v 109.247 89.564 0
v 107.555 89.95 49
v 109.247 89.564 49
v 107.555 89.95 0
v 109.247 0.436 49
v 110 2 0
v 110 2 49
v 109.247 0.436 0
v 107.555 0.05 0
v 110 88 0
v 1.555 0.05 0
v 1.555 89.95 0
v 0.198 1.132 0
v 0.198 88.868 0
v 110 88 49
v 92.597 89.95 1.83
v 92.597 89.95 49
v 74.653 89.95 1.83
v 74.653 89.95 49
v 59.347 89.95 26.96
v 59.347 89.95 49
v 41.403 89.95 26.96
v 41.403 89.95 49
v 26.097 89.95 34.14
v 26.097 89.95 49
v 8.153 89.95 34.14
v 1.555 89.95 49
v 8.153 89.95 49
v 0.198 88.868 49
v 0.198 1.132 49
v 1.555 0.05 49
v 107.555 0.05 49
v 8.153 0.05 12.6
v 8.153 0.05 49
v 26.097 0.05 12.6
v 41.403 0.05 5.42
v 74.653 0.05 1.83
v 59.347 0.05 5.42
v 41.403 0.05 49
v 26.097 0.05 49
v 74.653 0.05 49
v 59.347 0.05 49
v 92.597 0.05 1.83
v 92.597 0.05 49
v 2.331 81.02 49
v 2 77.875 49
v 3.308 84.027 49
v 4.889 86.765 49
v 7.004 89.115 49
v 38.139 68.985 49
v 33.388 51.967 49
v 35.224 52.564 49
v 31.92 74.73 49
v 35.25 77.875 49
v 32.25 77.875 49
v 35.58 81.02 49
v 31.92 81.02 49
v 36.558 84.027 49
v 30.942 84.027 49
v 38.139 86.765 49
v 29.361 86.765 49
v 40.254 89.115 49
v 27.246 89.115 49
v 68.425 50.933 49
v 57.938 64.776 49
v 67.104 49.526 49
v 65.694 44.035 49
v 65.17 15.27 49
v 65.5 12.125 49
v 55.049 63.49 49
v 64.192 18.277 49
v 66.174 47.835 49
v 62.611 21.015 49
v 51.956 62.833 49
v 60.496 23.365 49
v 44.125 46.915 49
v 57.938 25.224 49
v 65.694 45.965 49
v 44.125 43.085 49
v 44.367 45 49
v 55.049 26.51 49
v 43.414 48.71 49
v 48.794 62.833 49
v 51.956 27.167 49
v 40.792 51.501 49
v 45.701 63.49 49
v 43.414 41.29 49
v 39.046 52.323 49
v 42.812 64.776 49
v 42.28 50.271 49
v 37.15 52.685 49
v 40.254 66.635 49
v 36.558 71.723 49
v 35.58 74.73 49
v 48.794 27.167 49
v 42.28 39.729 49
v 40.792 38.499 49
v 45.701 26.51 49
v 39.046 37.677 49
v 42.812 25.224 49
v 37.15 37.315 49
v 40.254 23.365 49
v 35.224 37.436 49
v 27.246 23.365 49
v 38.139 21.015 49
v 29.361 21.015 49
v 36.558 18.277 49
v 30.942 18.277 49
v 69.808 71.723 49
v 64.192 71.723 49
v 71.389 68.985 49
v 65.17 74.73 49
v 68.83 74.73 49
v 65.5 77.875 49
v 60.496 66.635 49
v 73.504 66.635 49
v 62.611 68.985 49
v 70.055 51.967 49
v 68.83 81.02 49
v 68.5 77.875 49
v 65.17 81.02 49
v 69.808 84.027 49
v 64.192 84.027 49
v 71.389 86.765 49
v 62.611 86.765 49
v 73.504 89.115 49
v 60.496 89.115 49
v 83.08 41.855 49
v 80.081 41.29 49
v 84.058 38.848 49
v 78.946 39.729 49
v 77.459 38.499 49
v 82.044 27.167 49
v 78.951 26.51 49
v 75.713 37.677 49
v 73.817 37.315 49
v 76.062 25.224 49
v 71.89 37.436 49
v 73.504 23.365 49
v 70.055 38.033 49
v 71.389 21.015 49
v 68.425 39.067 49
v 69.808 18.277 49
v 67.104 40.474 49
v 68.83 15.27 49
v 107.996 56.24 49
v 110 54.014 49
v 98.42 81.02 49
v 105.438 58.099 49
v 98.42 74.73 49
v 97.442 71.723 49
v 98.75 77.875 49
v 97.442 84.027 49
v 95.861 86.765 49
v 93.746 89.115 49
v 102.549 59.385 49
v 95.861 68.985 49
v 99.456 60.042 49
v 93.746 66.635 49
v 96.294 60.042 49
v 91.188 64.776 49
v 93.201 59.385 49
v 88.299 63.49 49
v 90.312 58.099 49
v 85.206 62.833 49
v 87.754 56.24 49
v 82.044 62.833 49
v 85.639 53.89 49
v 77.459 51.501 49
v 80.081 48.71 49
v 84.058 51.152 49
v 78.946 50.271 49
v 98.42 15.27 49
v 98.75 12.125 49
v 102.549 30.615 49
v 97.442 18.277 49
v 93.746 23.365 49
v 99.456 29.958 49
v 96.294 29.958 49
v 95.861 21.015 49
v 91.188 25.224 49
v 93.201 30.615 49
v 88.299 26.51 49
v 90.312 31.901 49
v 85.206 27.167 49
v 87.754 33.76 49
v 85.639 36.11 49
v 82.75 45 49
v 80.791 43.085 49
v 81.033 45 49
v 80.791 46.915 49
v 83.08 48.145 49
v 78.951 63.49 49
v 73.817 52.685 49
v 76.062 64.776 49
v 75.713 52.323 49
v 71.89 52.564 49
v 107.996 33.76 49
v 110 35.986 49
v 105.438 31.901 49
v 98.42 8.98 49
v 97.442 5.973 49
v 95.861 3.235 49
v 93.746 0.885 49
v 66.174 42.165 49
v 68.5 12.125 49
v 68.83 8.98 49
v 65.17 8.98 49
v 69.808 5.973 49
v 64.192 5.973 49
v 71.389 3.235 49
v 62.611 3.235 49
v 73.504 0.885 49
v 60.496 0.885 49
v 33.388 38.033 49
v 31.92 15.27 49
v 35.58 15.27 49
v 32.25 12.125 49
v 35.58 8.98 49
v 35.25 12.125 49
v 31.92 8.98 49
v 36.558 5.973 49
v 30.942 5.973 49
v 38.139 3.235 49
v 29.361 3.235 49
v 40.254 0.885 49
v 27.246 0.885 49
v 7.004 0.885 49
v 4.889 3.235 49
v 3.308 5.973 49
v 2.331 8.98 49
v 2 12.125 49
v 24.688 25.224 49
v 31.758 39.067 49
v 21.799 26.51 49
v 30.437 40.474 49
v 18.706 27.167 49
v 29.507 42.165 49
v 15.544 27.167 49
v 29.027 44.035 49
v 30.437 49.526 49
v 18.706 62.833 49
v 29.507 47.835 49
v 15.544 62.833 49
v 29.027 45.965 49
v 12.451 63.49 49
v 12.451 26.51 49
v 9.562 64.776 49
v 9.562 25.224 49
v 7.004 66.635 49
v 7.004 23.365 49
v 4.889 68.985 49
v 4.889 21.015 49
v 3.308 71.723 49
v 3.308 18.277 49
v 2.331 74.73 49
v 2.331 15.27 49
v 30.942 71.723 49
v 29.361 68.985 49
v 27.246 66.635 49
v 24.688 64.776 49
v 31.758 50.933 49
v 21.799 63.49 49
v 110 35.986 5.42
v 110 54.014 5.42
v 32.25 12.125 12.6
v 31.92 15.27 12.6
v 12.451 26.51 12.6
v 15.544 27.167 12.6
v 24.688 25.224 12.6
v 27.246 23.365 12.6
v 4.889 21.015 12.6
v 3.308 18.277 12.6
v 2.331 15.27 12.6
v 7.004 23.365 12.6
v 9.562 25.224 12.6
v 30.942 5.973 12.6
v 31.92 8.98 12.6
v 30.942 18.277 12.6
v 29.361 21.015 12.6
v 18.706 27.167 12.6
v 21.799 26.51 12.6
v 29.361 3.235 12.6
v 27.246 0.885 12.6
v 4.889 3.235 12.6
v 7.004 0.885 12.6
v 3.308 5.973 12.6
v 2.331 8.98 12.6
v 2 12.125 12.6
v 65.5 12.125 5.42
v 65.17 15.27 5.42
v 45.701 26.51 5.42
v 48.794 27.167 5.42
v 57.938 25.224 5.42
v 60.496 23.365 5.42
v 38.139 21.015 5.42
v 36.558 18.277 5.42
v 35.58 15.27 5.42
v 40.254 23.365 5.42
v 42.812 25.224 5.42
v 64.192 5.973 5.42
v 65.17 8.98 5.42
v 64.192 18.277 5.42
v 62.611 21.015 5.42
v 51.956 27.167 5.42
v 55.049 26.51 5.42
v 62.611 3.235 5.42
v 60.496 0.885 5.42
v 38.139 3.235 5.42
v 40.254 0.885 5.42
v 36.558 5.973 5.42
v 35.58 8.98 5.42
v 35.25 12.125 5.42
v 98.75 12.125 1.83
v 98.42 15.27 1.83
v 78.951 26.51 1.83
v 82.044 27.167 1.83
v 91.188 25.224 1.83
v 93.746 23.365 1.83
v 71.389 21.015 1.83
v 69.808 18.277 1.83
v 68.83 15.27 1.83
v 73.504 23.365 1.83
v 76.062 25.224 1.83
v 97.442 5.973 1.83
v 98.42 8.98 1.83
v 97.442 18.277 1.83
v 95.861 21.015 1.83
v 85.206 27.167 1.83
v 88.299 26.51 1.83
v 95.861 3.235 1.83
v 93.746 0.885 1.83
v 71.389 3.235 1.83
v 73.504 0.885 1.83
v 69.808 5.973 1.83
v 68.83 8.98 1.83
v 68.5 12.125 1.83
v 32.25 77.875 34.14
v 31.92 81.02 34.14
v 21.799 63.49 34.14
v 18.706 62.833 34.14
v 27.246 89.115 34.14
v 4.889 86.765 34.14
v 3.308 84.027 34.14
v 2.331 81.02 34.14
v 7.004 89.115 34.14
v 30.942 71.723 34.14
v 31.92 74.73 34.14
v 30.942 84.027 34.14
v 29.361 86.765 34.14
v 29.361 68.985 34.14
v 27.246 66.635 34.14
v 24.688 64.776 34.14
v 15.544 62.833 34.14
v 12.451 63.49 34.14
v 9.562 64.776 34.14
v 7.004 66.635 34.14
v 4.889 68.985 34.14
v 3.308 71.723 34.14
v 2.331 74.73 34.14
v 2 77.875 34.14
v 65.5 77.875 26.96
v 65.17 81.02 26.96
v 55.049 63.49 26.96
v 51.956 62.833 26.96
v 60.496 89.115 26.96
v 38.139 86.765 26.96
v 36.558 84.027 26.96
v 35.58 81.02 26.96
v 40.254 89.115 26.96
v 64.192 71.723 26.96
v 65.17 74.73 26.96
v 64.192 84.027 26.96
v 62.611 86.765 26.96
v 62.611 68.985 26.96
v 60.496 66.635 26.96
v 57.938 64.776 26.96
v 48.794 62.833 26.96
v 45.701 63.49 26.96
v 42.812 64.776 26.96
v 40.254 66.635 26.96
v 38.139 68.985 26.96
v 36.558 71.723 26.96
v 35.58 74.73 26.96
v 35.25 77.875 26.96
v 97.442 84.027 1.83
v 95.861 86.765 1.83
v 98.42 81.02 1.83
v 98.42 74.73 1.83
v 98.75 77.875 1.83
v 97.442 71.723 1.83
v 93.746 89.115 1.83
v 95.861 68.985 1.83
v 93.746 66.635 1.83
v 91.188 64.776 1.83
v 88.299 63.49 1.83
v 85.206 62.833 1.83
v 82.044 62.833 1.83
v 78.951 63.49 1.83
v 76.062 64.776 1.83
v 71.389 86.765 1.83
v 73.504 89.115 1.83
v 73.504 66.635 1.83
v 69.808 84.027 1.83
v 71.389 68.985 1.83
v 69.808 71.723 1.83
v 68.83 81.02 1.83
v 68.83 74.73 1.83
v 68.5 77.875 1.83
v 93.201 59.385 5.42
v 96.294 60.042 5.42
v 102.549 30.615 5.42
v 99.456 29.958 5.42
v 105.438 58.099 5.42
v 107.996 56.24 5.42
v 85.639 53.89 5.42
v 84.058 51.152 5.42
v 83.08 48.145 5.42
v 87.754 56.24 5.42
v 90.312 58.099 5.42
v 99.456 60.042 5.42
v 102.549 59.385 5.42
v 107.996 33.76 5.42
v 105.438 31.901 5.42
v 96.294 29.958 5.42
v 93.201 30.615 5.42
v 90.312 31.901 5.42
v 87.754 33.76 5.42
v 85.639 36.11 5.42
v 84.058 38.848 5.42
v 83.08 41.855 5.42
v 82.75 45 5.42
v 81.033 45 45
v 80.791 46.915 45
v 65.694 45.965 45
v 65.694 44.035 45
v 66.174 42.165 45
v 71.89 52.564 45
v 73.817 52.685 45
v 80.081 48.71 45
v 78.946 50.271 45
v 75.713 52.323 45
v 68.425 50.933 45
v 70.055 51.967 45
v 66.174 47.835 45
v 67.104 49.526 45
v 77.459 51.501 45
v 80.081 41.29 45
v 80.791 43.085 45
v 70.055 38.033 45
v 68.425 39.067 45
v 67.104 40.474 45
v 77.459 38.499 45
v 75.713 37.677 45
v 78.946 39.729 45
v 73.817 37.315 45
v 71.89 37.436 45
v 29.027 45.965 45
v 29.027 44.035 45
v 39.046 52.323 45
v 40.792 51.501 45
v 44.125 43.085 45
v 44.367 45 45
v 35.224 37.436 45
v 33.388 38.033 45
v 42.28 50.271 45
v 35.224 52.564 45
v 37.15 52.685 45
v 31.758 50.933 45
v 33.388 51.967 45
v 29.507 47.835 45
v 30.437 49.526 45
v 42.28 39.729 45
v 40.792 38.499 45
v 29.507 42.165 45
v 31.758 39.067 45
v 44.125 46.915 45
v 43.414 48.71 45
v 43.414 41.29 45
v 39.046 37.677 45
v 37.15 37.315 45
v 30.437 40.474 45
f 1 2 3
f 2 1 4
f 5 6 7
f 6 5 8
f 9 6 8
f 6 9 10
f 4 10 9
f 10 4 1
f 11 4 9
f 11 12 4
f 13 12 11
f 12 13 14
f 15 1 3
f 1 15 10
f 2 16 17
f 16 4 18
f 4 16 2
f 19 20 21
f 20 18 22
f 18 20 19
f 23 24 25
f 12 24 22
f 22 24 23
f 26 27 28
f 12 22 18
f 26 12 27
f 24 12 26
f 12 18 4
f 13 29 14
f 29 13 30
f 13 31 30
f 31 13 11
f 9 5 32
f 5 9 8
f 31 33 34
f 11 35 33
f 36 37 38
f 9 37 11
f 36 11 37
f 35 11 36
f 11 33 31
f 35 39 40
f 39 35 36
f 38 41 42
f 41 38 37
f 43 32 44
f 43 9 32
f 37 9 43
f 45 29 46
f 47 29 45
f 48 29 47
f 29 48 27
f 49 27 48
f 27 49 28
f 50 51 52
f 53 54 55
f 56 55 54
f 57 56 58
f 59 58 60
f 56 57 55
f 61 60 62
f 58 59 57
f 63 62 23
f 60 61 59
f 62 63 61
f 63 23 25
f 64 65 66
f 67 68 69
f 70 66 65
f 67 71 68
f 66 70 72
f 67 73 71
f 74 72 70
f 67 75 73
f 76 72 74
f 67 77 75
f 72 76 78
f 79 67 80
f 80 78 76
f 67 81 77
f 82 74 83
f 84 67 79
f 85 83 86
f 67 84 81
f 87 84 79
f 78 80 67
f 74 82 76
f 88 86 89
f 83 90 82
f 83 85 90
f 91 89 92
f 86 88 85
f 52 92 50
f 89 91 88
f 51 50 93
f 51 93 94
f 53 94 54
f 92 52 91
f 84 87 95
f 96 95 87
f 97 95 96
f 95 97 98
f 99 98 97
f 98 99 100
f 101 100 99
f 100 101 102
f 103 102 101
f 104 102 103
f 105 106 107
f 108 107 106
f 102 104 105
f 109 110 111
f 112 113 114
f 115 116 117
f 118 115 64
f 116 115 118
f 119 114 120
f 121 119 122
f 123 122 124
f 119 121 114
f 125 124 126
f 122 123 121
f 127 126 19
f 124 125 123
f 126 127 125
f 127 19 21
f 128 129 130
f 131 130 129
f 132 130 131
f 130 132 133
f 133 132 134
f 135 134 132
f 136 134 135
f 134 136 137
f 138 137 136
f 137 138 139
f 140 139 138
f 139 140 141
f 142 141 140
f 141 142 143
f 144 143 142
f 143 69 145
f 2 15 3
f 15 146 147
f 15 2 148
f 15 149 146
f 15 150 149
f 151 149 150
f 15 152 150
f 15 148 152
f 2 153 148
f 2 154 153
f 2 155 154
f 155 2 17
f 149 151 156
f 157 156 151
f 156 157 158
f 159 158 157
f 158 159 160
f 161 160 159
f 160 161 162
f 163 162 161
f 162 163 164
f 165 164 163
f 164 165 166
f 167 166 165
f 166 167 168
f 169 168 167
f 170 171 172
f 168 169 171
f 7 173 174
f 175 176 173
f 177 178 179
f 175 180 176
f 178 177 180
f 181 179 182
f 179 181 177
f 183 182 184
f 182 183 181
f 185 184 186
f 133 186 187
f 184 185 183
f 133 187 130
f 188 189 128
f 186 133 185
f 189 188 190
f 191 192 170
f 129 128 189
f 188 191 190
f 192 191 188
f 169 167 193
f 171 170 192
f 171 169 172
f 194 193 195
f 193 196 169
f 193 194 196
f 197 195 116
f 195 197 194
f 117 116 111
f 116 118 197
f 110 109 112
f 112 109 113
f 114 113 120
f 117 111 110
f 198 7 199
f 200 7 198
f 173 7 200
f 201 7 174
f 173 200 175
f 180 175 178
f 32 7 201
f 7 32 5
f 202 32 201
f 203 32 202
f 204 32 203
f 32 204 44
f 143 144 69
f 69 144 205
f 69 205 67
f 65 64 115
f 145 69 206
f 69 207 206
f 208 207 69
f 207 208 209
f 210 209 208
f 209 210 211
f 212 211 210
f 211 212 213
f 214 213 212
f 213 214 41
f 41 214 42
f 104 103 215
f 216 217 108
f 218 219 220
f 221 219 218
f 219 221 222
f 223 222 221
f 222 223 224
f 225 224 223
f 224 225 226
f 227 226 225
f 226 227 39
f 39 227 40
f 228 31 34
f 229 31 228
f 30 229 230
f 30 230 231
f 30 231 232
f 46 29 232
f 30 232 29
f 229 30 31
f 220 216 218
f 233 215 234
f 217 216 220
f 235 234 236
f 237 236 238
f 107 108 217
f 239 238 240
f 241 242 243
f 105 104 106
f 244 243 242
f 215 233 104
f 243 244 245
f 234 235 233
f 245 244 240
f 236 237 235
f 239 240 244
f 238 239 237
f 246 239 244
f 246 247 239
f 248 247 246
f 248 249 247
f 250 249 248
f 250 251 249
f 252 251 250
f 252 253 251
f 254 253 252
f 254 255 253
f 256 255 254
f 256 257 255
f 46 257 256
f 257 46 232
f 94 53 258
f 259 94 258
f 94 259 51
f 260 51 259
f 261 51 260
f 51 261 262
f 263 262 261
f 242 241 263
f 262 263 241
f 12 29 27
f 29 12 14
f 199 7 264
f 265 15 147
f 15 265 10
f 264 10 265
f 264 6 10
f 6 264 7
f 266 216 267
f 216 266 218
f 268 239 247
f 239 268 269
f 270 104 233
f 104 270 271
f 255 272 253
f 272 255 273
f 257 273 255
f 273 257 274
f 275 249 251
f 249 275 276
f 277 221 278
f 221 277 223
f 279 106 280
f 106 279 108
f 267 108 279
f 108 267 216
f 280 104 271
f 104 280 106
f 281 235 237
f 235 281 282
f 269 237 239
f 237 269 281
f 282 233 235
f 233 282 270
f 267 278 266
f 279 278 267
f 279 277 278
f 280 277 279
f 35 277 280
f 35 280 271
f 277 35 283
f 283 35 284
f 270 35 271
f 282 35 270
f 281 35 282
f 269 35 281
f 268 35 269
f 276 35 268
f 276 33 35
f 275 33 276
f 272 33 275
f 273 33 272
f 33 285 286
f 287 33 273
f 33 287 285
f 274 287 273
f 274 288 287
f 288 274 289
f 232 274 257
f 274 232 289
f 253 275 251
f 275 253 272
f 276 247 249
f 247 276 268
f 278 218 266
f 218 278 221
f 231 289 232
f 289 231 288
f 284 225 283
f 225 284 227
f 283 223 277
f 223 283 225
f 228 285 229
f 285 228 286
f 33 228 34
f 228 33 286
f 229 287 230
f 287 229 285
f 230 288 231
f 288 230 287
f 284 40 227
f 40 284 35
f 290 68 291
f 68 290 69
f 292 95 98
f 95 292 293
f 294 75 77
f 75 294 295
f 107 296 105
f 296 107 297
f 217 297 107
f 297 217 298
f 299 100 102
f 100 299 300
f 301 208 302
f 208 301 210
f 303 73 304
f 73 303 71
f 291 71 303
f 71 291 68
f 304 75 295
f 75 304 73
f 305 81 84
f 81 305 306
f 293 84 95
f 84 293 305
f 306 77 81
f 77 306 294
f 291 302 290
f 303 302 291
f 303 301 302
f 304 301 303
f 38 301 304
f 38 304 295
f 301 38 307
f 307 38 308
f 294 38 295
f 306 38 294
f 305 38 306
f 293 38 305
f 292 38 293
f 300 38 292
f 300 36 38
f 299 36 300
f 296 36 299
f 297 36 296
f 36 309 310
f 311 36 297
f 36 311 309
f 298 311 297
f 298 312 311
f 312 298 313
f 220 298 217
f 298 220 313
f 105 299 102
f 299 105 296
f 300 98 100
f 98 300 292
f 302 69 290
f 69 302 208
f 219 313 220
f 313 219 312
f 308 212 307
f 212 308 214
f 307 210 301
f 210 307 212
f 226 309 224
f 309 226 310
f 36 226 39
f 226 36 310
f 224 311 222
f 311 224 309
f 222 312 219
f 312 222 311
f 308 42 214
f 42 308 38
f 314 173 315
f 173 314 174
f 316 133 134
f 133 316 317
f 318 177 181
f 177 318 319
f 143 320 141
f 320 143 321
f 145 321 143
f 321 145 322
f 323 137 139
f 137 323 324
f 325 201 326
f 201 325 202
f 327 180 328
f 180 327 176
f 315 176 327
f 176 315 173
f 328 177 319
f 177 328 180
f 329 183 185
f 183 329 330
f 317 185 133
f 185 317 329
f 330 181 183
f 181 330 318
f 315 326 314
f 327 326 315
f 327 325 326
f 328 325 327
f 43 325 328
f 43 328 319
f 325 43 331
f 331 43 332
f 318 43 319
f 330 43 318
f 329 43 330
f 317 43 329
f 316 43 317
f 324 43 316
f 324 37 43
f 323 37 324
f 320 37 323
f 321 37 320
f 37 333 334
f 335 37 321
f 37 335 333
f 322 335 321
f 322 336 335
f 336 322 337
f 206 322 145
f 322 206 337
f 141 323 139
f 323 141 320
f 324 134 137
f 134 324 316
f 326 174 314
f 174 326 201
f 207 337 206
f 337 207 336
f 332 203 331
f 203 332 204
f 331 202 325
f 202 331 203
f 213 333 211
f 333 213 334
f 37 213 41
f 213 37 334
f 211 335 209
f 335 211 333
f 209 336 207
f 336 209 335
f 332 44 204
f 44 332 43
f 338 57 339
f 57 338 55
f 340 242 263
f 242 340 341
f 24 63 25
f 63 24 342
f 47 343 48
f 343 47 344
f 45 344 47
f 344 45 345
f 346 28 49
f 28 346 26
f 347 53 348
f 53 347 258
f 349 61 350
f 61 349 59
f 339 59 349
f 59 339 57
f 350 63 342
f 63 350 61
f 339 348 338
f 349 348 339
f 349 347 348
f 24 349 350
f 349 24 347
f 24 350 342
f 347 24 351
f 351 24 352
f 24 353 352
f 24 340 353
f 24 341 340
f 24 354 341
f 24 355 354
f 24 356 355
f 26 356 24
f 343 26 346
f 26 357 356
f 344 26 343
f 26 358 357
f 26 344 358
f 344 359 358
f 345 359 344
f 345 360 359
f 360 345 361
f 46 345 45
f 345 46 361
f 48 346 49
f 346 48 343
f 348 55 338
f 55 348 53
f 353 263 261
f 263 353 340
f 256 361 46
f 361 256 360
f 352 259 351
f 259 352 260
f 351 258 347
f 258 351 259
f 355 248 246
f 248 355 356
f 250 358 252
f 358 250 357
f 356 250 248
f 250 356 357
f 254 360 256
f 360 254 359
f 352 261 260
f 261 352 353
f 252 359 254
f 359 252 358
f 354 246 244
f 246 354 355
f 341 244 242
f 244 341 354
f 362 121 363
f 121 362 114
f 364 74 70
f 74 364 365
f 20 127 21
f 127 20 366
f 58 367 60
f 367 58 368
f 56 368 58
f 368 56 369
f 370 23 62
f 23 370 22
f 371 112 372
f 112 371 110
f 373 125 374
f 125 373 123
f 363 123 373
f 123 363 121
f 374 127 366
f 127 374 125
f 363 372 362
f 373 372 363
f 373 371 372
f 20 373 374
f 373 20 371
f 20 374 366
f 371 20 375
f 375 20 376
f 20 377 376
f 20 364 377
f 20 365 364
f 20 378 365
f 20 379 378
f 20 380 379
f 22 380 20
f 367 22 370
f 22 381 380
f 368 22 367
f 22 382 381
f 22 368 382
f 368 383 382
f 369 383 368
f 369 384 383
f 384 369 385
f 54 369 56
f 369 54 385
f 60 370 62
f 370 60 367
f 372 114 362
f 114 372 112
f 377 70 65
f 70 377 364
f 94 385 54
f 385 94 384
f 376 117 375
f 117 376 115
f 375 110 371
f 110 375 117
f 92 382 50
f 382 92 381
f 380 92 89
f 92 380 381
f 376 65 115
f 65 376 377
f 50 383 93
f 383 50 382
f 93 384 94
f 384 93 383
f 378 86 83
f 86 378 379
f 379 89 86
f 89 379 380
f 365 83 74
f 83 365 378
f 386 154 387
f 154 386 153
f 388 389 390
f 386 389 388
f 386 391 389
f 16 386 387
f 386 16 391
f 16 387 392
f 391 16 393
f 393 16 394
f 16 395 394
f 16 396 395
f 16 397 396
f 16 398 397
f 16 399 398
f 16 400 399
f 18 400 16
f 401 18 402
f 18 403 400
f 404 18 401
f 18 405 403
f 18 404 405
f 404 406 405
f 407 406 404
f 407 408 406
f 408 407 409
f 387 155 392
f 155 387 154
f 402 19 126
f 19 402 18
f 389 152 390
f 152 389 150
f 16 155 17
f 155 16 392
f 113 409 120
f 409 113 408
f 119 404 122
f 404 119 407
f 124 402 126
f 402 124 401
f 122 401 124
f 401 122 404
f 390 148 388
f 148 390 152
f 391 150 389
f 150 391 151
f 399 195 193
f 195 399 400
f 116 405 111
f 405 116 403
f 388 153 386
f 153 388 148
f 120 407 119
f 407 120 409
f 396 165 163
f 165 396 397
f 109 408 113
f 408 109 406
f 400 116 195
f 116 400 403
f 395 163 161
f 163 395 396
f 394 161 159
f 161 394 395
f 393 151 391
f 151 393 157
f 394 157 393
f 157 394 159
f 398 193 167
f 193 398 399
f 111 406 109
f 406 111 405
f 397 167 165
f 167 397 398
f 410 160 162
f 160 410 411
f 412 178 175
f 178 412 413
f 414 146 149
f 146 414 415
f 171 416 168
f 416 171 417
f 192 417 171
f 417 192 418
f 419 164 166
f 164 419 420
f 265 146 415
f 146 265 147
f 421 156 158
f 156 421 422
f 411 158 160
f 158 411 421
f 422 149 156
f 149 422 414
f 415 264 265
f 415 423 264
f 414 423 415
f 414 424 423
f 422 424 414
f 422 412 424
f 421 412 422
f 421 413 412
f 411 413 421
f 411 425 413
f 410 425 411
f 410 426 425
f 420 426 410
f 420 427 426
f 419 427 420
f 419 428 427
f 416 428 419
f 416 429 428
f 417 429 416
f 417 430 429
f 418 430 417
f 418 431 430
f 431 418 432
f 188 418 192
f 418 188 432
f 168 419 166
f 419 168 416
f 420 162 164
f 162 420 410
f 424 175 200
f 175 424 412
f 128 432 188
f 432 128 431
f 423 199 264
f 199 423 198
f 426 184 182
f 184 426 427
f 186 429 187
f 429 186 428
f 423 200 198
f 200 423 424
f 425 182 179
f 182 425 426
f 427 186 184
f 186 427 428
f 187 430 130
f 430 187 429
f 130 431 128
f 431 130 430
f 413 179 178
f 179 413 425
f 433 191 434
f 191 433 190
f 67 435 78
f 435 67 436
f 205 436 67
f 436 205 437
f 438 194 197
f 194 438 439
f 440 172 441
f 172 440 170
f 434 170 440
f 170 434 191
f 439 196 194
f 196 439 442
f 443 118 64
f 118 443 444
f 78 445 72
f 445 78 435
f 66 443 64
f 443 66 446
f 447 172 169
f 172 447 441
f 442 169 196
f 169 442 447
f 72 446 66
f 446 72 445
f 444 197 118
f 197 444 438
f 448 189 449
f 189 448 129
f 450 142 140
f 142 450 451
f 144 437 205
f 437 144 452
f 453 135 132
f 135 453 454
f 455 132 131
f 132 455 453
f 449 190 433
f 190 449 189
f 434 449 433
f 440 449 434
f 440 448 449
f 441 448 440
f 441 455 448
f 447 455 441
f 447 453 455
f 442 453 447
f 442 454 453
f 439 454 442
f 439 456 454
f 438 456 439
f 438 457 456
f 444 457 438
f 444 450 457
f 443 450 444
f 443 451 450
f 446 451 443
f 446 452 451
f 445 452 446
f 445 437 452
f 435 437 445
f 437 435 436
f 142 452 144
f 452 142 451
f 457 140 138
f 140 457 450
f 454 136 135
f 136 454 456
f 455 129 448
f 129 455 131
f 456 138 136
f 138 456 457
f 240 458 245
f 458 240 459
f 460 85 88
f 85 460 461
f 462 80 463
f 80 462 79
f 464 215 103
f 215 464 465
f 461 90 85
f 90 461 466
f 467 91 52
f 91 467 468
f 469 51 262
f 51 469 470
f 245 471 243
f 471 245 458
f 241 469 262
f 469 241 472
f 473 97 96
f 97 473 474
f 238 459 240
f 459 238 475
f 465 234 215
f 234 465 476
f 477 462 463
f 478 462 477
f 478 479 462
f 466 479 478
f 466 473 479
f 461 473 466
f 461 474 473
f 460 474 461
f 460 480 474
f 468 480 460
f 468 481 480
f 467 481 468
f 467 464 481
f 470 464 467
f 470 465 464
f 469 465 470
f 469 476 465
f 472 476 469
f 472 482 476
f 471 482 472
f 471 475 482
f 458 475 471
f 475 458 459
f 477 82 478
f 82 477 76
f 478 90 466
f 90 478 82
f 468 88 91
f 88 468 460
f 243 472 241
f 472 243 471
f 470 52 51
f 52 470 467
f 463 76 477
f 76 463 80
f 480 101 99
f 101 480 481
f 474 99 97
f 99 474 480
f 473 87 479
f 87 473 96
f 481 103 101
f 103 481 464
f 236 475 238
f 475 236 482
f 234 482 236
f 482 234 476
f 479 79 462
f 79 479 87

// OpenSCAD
height = 49;

magnetBaseInnerDiameter = 15.4;
magnetHeight = 4.0;

// 29.75 x 3.59
// 10 1's
// 25 2's
// 25 10's
// 6 50's
// 4 100's

// 10, 12, 13, 12, 13, 6, 4


smallCircleDiameter = 29.75 + .5;
smallCircleOffset = 3;
smallCircleHeight4 = 14.36 + .5;
smallCircleHeight6 = 21.54 + .5;
smallCircleHeight10 = 35.90 + .5;
smallCircleHeight12 = 43.08 + .5;
smallCircleHeight13 = 46.67 + .5;

spaceBetweenCircles = 3;
wallThickness = 3;

width = 90;
length = 110;

difference(){
    minkowski()
    {
      translate([2,2,0])
        cube([length-4, width-4, height - 1]);
      cylinder(r=2,h=1);
    }
    
   translate([
        wallThickness * 1 + (smallCircleDiameter * 1/2) - 1,
        smallCircleDiameter/2 - smallCircleOffset,
        height - smallCircleHeight10])
        cylinder(smallCircleHeight10, d=smallCircleDiameter);
    translate([
        wallThickness * 2 + smallCircleDiameter * 3/2 - 1,
        smallCircleDiameter/2 - smallCircleOffset,
        height - smallCircleHeight12])
        cylinder(smallCircleHeight12, d=smallCircleDiameter);
    translate([
        wallThickness * 3 + smallCircleDiameter * 5/2 - 1,
        smallCircleDiameter/2 - smallCircleOffset,
        height - smallCircleHeight13])
        cylinder(smallCircleHeight13, d=smallCircleDiameter);


   translate([
        wallThickness * 1 + (smallCircleDiameter * 1/2) - 1,
        width - (smallCircleDiameter/2 - smallCircleOffset),
        height - smallCircleHeight4])
        cylinder(smallCircleHeight4, d=smallCircleDiameter);
    translate([
        wallThickness * 2 + smallCircleDiameter * 3/2 - 1,
        width - (smallCircleDiameter/2 - smallCircleOffset),
        height - smallCircleHeight6])
        cylinder(smallCircleHeight6, d=smallCircleDiameter);
    translate([
        wallThickness * 3 + smallCircleDiameter * 5/2 - 1,
        width - (smallCircleDiameter/2 - smallCircleOffset),
        height - smallCircleHeight13])
        cylinder(smallCircleHeight13, d=smallCircleDiameter);

    

    //translate([smallCircleDiameter/2 - smallCircleOffset, width/2, height - smallCircleHeight12])
    //    cylinder(smallCircleHeight12, d=smallCircleDiameter);

    translate([length - (smallCircleDiameter/2 - smallCircleOffset), width/2, height - smallCircleHeight12])
        cylinder(smallCircleHeight12, d=smallCircleDiameter);
        
    translate([2 * length/3, width/2, height - magnetHeight])
        cylinder(magnetHeight, d=magnetBaseInnerDiameter);
        
    translate([1 * length/3, width/2, height - magnetHeight])
        cylinder(magnetHeight, d=magnetBaseInnerDiameter);
        

}
